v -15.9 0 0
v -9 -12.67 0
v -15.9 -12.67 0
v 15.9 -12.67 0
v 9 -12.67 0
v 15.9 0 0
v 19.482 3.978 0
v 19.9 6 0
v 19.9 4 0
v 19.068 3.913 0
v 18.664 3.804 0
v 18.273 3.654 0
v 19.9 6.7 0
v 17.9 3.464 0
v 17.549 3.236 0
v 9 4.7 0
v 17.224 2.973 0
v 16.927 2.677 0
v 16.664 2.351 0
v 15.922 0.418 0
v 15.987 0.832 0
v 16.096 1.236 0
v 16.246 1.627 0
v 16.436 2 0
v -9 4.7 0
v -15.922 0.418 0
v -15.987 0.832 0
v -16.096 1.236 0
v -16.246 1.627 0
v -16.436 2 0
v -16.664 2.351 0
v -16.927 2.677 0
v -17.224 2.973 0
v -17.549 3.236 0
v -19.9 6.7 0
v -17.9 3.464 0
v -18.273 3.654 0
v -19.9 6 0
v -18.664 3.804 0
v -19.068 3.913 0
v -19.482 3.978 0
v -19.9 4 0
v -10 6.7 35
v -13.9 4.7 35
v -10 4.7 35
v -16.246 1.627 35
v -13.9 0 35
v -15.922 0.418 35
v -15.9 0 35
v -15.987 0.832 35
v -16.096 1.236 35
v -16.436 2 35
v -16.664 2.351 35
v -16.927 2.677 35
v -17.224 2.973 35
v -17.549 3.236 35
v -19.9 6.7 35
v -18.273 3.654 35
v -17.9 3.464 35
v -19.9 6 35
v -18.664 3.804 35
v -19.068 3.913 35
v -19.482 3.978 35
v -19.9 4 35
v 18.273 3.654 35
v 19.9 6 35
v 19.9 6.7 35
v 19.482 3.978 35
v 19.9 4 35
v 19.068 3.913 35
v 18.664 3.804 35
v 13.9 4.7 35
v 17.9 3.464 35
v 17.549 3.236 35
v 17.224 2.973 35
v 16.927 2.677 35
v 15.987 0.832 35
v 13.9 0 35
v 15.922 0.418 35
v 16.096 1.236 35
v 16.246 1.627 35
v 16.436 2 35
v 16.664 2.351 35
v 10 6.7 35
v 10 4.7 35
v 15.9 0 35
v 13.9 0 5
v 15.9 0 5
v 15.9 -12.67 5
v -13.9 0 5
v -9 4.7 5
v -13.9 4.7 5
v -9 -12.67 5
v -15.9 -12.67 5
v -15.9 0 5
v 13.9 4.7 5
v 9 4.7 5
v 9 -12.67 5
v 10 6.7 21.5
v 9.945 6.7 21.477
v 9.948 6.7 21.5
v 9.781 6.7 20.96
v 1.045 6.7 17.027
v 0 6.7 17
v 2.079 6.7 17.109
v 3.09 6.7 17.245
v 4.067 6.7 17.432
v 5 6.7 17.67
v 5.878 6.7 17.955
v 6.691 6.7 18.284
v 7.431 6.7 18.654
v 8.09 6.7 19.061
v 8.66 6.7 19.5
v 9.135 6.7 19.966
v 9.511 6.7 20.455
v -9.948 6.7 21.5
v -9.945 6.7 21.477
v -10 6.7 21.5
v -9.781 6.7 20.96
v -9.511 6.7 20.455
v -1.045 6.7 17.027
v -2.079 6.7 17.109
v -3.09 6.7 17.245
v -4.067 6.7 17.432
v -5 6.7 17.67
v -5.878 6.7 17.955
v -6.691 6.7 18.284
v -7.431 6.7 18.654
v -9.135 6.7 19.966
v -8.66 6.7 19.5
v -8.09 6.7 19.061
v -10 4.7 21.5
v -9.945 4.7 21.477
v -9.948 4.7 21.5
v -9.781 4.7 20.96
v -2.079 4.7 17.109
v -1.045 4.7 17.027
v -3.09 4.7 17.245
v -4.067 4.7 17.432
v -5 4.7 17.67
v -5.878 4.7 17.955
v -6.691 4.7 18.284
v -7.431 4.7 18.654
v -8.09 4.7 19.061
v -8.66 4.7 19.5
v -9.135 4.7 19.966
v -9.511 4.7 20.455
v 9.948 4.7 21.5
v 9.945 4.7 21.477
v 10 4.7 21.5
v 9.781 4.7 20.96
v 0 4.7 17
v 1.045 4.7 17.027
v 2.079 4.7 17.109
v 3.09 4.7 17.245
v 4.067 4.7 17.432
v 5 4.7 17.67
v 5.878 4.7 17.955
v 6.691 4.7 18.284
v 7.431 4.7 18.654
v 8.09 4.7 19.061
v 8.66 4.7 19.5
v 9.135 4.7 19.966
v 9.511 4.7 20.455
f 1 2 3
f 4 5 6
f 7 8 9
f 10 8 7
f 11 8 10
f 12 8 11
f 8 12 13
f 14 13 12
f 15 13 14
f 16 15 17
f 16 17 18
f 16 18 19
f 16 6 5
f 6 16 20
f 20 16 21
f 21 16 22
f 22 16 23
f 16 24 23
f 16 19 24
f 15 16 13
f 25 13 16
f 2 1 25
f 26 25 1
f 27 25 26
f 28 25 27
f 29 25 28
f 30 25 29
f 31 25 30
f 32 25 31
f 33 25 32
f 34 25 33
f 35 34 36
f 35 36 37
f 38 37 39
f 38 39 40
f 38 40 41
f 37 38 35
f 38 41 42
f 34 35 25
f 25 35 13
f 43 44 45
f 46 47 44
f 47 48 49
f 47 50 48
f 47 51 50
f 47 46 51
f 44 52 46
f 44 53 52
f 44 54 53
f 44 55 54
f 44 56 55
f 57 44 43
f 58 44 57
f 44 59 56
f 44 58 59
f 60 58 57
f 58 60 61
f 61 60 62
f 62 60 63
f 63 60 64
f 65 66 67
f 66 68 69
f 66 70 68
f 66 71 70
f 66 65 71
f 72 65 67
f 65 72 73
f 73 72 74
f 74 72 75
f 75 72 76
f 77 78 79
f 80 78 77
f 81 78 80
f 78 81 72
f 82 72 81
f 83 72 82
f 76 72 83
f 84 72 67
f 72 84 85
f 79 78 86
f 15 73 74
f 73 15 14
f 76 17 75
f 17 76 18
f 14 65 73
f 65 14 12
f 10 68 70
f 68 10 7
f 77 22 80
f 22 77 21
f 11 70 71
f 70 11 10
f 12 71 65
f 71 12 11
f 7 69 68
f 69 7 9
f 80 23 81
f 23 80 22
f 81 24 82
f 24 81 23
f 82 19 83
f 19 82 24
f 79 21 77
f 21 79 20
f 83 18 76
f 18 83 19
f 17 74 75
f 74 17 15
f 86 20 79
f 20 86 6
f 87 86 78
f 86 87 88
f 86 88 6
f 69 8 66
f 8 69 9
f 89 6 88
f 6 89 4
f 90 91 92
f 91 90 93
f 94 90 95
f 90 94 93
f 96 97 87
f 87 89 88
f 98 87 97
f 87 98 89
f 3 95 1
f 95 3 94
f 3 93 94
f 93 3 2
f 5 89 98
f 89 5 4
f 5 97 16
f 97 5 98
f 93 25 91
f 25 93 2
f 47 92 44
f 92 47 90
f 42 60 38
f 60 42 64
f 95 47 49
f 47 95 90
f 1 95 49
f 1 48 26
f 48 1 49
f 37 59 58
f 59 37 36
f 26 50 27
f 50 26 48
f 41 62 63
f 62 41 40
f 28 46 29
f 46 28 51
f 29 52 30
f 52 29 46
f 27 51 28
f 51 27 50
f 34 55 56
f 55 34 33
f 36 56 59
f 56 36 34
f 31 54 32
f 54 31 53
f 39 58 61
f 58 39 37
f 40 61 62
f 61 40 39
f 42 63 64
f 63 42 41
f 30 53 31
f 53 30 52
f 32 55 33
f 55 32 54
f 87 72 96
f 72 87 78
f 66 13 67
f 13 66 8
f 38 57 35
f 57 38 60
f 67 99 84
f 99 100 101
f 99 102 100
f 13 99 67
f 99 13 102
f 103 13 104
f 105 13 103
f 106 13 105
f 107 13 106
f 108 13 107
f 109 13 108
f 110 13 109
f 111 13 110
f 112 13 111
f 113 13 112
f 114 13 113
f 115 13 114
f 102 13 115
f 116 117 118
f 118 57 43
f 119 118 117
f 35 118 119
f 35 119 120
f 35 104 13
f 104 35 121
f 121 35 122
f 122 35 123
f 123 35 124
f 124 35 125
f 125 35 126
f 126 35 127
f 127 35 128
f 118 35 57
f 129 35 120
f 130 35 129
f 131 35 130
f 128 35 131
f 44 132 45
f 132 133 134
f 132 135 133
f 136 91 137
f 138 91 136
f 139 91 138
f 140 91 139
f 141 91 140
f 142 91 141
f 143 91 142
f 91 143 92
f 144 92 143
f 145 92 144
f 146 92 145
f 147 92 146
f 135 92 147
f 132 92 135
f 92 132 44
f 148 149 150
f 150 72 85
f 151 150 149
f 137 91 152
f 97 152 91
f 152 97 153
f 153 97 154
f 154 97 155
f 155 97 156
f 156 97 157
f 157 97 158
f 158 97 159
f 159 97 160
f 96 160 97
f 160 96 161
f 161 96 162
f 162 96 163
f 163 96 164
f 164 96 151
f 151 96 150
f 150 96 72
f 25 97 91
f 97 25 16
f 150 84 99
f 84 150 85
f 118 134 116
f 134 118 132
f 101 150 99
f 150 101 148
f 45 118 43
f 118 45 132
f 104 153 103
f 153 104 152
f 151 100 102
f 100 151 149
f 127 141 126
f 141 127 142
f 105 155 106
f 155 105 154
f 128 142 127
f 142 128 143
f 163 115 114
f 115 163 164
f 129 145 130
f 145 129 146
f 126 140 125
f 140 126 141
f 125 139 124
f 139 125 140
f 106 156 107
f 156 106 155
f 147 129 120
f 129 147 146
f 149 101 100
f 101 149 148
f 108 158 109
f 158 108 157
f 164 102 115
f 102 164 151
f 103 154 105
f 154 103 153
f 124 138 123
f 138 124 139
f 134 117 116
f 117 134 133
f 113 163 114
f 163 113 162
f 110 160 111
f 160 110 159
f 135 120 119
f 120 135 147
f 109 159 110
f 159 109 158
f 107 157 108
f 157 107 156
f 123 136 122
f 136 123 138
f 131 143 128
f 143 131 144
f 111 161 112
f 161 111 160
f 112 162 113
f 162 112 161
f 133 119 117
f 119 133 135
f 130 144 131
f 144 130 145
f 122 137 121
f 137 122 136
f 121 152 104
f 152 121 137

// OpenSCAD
//Designed by Nathaniel Stenzel on January 12, 2020.
//Thingiverse thing 4099004

$fn=60;

//translate([40.2,8.9,0])import("/home/nstenzel/3d_printer/Rod_End_Cap_1_of_3.stl");
length=40;
module endstop_placer(){
    translate([-19.9,0,0])difference(){
        translate([3,3,17.5])cube([6,6,35],center=true);
        translate([0,0,-1])cylinder(d=8,h=37);
    }
    translate([19.9,0,0])difference(){
        translate([-3,3,17.5])cube([6,6,35],center=true);
        translate([0,0,-1])cylinder(d=8,h=37);
    }

    translate([19.9,0,0])difference(){
        cylinder(d=12,h=35);
        translate([0,0,-1])cylinder(d=8,h=37);
        translate([0,-6,-1])cube([12,12,80],center=true);
        translate([6,5,-1])cube([12,12,80],center=true);
    }

    difference(){
        translate([0,5.7,17.5])cube([39.8,2,35],center=true);
        translate([0,6,29])cube([20,3,15],center=true);
    translate([0,3.8,22])scale([1,1,0.5])rotate([-90,0,0])cylinder(d=20,h=3);
    }

    
    difference(){
        translate([0,-3.67,2.5])cube([31.8,18,5],center=true);
        translate([0,-3.67,2.5])cube([18,19,6],center=true);
    }

}


endstop_placer();
